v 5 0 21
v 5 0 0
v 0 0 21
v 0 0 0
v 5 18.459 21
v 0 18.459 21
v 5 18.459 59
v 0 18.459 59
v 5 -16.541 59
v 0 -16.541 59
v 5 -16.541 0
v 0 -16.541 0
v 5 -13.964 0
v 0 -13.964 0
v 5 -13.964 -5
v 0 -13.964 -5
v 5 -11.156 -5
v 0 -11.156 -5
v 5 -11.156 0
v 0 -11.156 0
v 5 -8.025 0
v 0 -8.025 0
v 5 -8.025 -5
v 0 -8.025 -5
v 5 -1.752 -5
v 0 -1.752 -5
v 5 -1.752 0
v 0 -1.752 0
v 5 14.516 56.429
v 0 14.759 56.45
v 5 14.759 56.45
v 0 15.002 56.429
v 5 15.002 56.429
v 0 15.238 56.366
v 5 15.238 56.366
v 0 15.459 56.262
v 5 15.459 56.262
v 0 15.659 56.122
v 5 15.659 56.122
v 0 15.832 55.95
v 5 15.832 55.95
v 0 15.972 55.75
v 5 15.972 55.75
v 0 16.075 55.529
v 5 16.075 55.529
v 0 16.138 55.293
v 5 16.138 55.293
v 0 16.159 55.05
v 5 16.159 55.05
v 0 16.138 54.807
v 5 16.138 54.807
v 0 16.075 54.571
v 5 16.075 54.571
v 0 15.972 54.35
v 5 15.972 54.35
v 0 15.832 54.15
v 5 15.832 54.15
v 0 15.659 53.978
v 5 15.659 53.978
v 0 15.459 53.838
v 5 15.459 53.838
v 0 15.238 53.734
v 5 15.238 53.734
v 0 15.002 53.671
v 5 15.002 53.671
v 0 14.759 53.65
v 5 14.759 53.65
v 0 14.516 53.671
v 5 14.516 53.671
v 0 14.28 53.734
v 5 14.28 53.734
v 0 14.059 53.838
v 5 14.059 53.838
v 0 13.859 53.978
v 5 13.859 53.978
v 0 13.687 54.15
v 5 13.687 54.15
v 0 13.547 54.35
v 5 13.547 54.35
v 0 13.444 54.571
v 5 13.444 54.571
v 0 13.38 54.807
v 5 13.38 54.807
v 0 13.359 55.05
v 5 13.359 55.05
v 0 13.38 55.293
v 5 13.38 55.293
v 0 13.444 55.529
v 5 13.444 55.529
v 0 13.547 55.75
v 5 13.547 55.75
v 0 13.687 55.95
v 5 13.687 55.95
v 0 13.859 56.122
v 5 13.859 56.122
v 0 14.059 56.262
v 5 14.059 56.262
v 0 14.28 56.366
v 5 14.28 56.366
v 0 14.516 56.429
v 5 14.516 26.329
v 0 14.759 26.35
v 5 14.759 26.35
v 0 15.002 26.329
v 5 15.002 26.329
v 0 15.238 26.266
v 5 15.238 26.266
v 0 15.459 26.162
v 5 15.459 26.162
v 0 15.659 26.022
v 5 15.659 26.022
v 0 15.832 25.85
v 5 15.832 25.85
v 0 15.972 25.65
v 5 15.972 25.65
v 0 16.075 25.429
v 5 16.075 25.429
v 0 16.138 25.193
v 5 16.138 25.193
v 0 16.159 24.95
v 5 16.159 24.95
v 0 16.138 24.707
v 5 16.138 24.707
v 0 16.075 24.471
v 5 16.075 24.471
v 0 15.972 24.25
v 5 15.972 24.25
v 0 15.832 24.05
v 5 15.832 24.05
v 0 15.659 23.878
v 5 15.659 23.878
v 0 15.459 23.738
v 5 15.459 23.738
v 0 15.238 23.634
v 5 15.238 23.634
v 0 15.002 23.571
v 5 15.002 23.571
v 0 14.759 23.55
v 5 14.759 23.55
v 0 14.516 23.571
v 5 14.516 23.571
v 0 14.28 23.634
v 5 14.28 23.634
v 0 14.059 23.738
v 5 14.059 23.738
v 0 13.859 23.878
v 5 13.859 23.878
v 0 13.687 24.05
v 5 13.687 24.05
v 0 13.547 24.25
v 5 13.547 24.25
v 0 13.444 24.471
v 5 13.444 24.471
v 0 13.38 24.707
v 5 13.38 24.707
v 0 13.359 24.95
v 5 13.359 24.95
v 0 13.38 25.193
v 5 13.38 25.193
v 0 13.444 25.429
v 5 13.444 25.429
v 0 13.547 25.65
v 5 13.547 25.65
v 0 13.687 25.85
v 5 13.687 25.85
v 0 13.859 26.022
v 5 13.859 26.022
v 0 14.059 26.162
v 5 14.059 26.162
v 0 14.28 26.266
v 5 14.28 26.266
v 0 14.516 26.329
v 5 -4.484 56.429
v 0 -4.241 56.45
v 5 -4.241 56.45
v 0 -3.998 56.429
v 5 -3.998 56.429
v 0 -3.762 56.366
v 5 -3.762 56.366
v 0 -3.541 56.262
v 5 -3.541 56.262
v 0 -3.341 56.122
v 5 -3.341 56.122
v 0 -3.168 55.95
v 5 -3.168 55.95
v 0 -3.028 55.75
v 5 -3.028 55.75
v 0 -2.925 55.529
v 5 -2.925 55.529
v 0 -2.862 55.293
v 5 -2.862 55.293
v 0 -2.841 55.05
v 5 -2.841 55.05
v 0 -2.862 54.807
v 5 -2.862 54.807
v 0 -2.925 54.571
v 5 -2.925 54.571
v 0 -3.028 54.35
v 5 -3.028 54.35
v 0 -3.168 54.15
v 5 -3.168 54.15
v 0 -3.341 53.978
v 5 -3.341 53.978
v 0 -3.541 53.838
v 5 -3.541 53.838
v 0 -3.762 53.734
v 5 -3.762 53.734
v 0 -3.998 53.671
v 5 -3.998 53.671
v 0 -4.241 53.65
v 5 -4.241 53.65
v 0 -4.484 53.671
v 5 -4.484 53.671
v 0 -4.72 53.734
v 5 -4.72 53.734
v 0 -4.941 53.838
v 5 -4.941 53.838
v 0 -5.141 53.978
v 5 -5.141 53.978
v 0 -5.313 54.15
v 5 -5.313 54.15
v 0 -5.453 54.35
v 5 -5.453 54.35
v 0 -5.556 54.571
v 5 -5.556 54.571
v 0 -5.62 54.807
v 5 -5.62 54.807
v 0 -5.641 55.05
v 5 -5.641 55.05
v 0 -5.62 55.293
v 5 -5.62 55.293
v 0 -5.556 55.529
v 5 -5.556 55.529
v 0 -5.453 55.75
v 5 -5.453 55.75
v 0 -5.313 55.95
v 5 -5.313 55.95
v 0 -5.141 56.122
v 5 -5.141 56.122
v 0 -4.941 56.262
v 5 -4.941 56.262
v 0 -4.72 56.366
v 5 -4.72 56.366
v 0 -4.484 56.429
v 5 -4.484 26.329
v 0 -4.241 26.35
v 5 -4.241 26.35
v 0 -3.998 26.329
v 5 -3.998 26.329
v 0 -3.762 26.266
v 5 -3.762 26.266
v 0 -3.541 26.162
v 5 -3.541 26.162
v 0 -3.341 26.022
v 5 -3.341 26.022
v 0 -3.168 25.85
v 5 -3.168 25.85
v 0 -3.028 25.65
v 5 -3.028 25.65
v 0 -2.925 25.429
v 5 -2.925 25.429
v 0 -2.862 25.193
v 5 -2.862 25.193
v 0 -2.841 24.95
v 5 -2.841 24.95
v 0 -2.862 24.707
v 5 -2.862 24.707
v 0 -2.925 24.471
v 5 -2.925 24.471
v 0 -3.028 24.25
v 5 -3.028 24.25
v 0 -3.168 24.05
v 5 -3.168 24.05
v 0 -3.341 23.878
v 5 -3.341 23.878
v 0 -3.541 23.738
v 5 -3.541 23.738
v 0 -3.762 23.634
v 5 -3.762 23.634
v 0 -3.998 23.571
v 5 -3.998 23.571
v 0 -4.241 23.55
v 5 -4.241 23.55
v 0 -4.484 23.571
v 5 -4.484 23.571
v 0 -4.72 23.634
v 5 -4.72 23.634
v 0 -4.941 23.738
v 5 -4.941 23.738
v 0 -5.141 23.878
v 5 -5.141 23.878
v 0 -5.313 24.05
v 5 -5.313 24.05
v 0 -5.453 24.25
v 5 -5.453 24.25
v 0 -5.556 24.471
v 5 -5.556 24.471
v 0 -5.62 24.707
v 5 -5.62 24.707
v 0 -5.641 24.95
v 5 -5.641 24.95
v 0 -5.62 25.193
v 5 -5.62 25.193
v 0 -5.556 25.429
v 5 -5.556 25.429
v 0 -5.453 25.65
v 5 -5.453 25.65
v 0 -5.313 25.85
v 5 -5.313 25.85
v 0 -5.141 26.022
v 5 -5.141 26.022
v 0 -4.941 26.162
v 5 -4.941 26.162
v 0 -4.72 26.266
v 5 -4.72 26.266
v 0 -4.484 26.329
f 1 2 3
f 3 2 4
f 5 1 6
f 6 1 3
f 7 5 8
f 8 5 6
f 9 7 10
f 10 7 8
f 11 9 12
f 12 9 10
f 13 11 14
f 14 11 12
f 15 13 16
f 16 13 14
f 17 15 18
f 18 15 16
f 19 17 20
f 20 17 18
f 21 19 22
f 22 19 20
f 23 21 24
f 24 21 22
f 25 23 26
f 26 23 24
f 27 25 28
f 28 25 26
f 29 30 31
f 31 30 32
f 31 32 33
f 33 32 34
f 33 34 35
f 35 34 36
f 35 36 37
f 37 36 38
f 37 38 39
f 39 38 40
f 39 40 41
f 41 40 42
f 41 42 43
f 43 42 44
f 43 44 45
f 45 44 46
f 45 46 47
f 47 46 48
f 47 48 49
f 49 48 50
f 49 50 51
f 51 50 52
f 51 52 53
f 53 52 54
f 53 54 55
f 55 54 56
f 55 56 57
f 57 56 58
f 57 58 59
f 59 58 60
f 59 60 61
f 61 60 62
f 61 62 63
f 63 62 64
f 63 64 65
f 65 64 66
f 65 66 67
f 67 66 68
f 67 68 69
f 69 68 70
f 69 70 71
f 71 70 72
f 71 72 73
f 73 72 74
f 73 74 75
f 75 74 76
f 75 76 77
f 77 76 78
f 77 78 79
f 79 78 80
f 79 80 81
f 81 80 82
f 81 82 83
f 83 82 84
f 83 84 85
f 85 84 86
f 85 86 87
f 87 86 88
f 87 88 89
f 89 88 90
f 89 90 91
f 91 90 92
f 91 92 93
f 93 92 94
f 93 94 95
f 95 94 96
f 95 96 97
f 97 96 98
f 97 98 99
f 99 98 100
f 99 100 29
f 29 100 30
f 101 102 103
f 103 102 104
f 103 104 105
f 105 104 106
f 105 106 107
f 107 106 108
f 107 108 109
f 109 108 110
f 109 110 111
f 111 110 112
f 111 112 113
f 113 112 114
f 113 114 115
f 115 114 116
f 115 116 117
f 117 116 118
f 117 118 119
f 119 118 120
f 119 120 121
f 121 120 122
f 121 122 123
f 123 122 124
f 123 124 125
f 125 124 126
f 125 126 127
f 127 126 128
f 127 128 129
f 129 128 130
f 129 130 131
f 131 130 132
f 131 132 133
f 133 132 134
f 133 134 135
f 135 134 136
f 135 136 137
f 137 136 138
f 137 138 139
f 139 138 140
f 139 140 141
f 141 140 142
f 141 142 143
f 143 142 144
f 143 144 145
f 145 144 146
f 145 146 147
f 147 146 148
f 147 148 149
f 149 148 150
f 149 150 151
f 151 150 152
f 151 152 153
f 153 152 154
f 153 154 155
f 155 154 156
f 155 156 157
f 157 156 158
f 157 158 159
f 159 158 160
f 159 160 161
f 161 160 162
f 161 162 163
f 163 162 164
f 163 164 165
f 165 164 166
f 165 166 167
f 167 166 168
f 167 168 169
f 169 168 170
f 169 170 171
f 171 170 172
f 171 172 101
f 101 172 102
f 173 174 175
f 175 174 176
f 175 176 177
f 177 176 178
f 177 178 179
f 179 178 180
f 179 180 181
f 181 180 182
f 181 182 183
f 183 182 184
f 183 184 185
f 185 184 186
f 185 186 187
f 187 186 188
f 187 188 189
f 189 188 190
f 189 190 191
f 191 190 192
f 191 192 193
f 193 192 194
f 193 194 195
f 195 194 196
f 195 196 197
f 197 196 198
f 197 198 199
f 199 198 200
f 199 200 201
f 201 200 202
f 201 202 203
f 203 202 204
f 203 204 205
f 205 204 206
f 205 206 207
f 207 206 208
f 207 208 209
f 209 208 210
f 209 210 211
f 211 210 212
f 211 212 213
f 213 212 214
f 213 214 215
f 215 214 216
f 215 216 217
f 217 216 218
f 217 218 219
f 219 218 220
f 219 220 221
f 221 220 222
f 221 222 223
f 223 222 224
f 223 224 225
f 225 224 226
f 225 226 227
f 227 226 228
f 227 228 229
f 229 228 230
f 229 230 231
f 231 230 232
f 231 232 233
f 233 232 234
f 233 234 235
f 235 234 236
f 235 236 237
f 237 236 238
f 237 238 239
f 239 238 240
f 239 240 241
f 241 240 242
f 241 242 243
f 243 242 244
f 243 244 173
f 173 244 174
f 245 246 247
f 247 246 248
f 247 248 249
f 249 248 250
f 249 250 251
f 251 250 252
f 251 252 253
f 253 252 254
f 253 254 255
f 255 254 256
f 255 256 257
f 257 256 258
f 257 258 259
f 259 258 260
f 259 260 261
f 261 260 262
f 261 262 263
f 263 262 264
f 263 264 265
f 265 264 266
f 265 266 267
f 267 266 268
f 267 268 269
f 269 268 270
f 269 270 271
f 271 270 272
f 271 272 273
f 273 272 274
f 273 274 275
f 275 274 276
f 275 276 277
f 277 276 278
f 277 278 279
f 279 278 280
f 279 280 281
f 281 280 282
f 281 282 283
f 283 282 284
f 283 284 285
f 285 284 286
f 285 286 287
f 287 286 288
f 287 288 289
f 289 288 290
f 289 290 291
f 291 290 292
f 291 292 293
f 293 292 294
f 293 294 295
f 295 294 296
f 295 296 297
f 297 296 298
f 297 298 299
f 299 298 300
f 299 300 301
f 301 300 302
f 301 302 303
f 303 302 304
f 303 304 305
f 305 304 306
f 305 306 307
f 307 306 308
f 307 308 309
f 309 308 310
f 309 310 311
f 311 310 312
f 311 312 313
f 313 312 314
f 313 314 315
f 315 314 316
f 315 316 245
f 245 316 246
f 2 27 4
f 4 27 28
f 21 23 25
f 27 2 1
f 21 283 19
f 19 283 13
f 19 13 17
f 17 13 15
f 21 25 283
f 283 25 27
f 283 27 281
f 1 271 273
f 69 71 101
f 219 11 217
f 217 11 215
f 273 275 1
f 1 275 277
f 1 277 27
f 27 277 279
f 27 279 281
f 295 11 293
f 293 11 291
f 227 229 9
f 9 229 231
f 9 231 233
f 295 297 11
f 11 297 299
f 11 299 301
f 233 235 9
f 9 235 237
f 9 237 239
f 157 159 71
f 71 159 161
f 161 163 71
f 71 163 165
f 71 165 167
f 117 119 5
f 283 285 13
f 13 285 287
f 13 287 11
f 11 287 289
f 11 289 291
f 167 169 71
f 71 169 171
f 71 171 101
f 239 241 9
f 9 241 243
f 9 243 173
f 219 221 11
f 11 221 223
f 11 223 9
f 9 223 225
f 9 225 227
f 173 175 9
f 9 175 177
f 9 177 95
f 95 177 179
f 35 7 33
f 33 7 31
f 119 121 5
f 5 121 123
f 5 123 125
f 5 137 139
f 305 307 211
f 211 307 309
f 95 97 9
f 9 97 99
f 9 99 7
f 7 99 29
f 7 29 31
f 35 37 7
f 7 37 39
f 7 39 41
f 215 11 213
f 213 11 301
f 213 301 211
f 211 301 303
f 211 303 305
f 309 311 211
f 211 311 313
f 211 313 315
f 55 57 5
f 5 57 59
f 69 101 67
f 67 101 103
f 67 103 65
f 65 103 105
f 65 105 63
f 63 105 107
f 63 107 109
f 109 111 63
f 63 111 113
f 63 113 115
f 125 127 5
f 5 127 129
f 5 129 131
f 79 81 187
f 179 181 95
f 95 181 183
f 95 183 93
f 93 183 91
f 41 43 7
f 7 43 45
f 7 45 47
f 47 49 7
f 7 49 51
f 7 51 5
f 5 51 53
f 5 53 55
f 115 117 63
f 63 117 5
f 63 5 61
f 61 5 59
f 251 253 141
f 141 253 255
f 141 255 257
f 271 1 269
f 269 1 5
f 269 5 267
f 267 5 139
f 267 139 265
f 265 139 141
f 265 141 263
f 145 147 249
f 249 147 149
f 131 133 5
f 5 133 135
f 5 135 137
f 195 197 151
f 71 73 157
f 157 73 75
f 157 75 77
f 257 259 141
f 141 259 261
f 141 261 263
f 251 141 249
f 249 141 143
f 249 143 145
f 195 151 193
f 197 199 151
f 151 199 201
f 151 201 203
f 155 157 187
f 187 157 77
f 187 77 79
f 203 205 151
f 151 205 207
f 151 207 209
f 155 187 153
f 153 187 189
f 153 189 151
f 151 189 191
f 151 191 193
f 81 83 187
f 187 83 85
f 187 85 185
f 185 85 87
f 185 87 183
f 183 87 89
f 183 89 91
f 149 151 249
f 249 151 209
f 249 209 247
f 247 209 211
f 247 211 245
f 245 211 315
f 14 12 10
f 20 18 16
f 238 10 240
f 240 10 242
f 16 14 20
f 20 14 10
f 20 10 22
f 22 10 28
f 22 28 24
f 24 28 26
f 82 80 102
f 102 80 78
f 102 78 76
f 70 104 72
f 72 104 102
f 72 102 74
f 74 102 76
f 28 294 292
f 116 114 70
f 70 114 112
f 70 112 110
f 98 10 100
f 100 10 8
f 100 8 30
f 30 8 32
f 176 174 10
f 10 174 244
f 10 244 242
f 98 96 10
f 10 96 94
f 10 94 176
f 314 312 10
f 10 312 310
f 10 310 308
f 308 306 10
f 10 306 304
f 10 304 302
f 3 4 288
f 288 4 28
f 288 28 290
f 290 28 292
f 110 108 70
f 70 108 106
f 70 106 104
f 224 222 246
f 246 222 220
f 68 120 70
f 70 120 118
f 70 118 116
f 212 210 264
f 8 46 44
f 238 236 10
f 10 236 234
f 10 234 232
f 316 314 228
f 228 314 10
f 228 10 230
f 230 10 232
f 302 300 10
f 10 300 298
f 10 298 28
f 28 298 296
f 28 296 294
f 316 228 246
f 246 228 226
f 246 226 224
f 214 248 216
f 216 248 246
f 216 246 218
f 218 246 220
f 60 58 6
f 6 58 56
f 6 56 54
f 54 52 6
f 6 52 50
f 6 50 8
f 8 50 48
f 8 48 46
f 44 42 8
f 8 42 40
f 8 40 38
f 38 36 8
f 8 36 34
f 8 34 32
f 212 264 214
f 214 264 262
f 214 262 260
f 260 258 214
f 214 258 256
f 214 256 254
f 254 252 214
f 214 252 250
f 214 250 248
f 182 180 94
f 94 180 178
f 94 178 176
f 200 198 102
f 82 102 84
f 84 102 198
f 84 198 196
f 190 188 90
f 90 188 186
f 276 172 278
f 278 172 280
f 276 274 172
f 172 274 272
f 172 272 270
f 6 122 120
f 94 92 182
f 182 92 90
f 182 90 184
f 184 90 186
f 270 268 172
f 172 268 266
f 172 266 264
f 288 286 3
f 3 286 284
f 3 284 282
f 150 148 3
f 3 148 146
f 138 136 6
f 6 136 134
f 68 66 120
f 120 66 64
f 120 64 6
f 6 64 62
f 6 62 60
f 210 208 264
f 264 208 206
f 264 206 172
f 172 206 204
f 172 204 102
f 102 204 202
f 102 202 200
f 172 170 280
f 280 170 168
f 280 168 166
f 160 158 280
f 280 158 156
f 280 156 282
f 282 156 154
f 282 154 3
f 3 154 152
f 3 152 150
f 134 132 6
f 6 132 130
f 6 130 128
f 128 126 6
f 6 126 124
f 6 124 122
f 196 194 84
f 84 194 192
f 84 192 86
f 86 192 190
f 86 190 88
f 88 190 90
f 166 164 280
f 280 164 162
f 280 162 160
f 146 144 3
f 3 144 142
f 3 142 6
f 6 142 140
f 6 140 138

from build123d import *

# Parameters (mm, degrees)
SKETCH1_R           = 1.4
BOSS_EXTRUDE1_DEPTH = 5


with BuildPart() as part:
    # Sketch1 → Boss-Extrude1 (new body)
    with BuildSketch(Plane(origin=(0, 0, 0), x_dir=(0, 0, -1), z_dir=(1, 0, 0))):
        Polygon((0, 0), (-21, 0), (-21, 18.45912049), (-59, 18.45912049), (-59, 3.45912049), (-59, -16.54087951), (0, -16.54087951), (0, -13.963518408), (5, -13.963518408), (5, -11.15648618), (0, -11.15648618), (0, -8.024983971), (5, -8.024983971), (5, -1.752077979), (0, -1.752077979), align=None)
        with Locations((-24.95, -4.24087951)):
            Circle(SKETCH1_R, mode=Mode.SUBTRACT)
        with Locations((-55.05, -4.24087951)):
            Circle(SKETCH1_R, mode=Mode.SUBTRACT)
        with Locations((-24.95, 14.75912049)):
            Circle(SKETCH1_R, mode=Mode.SUBTRACT)
        with Locations((-55.05, 14.75912049)):
            Circle(SKETCH1_R, mode=Mode.SUBTRACT)
    extrude(amount=BOSS_EXTRUDE1_DEPTH)


solid = part.part
